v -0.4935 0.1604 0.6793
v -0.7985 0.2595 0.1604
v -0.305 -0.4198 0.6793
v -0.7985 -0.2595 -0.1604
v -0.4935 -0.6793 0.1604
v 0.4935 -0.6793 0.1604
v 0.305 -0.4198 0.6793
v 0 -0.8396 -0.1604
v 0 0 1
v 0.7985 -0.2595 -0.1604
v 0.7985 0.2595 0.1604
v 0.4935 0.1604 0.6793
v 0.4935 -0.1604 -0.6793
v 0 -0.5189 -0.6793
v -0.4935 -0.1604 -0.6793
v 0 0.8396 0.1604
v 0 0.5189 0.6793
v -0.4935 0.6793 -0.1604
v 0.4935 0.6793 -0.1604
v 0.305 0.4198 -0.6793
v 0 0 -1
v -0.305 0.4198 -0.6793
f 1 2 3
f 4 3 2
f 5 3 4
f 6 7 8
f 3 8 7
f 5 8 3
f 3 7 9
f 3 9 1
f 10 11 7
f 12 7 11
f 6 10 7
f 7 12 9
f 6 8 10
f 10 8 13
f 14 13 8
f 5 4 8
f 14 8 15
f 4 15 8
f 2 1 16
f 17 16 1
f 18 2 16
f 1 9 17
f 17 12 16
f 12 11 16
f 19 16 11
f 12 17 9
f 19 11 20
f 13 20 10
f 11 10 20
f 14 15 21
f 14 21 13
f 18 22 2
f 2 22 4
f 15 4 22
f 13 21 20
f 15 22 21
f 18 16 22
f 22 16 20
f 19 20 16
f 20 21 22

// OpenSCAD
polyhedron( points = [[-0.305018008050563, -0.419821271771486, 0.679285086838022], [0.305018008088621, -0.419821271771486, 0.679285086838022], [0.493529504262307, -0.679285086897216, 0.160357456529198], [7.04028434191575e-12, -0.83964254347082, -0.16035745665346], [-0.493529504187102, -0.679285086886501, 0.160357456550629], [-0.493529504210401, 0.160357456634281, 0.679285086838022], [0.493529504155264, 0.160357456634281, 0.679285086838022], [0.798547512288831, -0.259463815134725, -0.160357456679197], [-6.91855413448965e-11, -0.518927630260962, -0.679285086867908], [-0.798547512227109, -0.259463815021852, -0.160357456632707], [-0.79854751221271, 0.259463815208757, 0.160357456600545], [-5.63656542651095e-11, 0.518927630323598, 0.679285086838022], [0.79854751226011, 0.259463815096669, 0.160357456533611], [0.493529504144845, -0.160357456574943, -0.679285086932804], [-0.493529504307398, -0.160357456617091, -0.679285086728967], [-0.493529504024065, 0.67928508688719, -0.160357456530111], [2.4897571061897e-10, 0.839642543417127, 0.160357456716932], [0.493529504057866, 0.679285086757167, -0.160357456620268], [0.305018008024305, 0.41982127169471, -0.679285086833972], [-0.305018008075193, 0.419821271668656, -0.679285086707993], [3.48420929113485e-11, 2.6702826617782e-11, 1.0], [-1.52914806587402e-10, 5.79452312883354e-11, -0.999999999933638]], faces = [[0, 5, 10, 9, 4], [0, 4, 3, 2, 1], [0, 1, 20], [0, 20, 5], [1, 2, 7, 12, 6], [1, 6, 20], [2, 3, 8, 13, 7], [3, 4, 9, 14, 8], [5, 11, 16, 15, 10], [5, 20, 11], [6, 12, 17, 16, 11], [6, 11, 20], [7, 13, 18, 17, 12], [8, 14, 21], [8, 21, 13], [9, 10, 15, 19, 14], [13, 21, 18], [14, 19, 21], [15, 16, 17, 18, 19], [18, 21, 19]]);
